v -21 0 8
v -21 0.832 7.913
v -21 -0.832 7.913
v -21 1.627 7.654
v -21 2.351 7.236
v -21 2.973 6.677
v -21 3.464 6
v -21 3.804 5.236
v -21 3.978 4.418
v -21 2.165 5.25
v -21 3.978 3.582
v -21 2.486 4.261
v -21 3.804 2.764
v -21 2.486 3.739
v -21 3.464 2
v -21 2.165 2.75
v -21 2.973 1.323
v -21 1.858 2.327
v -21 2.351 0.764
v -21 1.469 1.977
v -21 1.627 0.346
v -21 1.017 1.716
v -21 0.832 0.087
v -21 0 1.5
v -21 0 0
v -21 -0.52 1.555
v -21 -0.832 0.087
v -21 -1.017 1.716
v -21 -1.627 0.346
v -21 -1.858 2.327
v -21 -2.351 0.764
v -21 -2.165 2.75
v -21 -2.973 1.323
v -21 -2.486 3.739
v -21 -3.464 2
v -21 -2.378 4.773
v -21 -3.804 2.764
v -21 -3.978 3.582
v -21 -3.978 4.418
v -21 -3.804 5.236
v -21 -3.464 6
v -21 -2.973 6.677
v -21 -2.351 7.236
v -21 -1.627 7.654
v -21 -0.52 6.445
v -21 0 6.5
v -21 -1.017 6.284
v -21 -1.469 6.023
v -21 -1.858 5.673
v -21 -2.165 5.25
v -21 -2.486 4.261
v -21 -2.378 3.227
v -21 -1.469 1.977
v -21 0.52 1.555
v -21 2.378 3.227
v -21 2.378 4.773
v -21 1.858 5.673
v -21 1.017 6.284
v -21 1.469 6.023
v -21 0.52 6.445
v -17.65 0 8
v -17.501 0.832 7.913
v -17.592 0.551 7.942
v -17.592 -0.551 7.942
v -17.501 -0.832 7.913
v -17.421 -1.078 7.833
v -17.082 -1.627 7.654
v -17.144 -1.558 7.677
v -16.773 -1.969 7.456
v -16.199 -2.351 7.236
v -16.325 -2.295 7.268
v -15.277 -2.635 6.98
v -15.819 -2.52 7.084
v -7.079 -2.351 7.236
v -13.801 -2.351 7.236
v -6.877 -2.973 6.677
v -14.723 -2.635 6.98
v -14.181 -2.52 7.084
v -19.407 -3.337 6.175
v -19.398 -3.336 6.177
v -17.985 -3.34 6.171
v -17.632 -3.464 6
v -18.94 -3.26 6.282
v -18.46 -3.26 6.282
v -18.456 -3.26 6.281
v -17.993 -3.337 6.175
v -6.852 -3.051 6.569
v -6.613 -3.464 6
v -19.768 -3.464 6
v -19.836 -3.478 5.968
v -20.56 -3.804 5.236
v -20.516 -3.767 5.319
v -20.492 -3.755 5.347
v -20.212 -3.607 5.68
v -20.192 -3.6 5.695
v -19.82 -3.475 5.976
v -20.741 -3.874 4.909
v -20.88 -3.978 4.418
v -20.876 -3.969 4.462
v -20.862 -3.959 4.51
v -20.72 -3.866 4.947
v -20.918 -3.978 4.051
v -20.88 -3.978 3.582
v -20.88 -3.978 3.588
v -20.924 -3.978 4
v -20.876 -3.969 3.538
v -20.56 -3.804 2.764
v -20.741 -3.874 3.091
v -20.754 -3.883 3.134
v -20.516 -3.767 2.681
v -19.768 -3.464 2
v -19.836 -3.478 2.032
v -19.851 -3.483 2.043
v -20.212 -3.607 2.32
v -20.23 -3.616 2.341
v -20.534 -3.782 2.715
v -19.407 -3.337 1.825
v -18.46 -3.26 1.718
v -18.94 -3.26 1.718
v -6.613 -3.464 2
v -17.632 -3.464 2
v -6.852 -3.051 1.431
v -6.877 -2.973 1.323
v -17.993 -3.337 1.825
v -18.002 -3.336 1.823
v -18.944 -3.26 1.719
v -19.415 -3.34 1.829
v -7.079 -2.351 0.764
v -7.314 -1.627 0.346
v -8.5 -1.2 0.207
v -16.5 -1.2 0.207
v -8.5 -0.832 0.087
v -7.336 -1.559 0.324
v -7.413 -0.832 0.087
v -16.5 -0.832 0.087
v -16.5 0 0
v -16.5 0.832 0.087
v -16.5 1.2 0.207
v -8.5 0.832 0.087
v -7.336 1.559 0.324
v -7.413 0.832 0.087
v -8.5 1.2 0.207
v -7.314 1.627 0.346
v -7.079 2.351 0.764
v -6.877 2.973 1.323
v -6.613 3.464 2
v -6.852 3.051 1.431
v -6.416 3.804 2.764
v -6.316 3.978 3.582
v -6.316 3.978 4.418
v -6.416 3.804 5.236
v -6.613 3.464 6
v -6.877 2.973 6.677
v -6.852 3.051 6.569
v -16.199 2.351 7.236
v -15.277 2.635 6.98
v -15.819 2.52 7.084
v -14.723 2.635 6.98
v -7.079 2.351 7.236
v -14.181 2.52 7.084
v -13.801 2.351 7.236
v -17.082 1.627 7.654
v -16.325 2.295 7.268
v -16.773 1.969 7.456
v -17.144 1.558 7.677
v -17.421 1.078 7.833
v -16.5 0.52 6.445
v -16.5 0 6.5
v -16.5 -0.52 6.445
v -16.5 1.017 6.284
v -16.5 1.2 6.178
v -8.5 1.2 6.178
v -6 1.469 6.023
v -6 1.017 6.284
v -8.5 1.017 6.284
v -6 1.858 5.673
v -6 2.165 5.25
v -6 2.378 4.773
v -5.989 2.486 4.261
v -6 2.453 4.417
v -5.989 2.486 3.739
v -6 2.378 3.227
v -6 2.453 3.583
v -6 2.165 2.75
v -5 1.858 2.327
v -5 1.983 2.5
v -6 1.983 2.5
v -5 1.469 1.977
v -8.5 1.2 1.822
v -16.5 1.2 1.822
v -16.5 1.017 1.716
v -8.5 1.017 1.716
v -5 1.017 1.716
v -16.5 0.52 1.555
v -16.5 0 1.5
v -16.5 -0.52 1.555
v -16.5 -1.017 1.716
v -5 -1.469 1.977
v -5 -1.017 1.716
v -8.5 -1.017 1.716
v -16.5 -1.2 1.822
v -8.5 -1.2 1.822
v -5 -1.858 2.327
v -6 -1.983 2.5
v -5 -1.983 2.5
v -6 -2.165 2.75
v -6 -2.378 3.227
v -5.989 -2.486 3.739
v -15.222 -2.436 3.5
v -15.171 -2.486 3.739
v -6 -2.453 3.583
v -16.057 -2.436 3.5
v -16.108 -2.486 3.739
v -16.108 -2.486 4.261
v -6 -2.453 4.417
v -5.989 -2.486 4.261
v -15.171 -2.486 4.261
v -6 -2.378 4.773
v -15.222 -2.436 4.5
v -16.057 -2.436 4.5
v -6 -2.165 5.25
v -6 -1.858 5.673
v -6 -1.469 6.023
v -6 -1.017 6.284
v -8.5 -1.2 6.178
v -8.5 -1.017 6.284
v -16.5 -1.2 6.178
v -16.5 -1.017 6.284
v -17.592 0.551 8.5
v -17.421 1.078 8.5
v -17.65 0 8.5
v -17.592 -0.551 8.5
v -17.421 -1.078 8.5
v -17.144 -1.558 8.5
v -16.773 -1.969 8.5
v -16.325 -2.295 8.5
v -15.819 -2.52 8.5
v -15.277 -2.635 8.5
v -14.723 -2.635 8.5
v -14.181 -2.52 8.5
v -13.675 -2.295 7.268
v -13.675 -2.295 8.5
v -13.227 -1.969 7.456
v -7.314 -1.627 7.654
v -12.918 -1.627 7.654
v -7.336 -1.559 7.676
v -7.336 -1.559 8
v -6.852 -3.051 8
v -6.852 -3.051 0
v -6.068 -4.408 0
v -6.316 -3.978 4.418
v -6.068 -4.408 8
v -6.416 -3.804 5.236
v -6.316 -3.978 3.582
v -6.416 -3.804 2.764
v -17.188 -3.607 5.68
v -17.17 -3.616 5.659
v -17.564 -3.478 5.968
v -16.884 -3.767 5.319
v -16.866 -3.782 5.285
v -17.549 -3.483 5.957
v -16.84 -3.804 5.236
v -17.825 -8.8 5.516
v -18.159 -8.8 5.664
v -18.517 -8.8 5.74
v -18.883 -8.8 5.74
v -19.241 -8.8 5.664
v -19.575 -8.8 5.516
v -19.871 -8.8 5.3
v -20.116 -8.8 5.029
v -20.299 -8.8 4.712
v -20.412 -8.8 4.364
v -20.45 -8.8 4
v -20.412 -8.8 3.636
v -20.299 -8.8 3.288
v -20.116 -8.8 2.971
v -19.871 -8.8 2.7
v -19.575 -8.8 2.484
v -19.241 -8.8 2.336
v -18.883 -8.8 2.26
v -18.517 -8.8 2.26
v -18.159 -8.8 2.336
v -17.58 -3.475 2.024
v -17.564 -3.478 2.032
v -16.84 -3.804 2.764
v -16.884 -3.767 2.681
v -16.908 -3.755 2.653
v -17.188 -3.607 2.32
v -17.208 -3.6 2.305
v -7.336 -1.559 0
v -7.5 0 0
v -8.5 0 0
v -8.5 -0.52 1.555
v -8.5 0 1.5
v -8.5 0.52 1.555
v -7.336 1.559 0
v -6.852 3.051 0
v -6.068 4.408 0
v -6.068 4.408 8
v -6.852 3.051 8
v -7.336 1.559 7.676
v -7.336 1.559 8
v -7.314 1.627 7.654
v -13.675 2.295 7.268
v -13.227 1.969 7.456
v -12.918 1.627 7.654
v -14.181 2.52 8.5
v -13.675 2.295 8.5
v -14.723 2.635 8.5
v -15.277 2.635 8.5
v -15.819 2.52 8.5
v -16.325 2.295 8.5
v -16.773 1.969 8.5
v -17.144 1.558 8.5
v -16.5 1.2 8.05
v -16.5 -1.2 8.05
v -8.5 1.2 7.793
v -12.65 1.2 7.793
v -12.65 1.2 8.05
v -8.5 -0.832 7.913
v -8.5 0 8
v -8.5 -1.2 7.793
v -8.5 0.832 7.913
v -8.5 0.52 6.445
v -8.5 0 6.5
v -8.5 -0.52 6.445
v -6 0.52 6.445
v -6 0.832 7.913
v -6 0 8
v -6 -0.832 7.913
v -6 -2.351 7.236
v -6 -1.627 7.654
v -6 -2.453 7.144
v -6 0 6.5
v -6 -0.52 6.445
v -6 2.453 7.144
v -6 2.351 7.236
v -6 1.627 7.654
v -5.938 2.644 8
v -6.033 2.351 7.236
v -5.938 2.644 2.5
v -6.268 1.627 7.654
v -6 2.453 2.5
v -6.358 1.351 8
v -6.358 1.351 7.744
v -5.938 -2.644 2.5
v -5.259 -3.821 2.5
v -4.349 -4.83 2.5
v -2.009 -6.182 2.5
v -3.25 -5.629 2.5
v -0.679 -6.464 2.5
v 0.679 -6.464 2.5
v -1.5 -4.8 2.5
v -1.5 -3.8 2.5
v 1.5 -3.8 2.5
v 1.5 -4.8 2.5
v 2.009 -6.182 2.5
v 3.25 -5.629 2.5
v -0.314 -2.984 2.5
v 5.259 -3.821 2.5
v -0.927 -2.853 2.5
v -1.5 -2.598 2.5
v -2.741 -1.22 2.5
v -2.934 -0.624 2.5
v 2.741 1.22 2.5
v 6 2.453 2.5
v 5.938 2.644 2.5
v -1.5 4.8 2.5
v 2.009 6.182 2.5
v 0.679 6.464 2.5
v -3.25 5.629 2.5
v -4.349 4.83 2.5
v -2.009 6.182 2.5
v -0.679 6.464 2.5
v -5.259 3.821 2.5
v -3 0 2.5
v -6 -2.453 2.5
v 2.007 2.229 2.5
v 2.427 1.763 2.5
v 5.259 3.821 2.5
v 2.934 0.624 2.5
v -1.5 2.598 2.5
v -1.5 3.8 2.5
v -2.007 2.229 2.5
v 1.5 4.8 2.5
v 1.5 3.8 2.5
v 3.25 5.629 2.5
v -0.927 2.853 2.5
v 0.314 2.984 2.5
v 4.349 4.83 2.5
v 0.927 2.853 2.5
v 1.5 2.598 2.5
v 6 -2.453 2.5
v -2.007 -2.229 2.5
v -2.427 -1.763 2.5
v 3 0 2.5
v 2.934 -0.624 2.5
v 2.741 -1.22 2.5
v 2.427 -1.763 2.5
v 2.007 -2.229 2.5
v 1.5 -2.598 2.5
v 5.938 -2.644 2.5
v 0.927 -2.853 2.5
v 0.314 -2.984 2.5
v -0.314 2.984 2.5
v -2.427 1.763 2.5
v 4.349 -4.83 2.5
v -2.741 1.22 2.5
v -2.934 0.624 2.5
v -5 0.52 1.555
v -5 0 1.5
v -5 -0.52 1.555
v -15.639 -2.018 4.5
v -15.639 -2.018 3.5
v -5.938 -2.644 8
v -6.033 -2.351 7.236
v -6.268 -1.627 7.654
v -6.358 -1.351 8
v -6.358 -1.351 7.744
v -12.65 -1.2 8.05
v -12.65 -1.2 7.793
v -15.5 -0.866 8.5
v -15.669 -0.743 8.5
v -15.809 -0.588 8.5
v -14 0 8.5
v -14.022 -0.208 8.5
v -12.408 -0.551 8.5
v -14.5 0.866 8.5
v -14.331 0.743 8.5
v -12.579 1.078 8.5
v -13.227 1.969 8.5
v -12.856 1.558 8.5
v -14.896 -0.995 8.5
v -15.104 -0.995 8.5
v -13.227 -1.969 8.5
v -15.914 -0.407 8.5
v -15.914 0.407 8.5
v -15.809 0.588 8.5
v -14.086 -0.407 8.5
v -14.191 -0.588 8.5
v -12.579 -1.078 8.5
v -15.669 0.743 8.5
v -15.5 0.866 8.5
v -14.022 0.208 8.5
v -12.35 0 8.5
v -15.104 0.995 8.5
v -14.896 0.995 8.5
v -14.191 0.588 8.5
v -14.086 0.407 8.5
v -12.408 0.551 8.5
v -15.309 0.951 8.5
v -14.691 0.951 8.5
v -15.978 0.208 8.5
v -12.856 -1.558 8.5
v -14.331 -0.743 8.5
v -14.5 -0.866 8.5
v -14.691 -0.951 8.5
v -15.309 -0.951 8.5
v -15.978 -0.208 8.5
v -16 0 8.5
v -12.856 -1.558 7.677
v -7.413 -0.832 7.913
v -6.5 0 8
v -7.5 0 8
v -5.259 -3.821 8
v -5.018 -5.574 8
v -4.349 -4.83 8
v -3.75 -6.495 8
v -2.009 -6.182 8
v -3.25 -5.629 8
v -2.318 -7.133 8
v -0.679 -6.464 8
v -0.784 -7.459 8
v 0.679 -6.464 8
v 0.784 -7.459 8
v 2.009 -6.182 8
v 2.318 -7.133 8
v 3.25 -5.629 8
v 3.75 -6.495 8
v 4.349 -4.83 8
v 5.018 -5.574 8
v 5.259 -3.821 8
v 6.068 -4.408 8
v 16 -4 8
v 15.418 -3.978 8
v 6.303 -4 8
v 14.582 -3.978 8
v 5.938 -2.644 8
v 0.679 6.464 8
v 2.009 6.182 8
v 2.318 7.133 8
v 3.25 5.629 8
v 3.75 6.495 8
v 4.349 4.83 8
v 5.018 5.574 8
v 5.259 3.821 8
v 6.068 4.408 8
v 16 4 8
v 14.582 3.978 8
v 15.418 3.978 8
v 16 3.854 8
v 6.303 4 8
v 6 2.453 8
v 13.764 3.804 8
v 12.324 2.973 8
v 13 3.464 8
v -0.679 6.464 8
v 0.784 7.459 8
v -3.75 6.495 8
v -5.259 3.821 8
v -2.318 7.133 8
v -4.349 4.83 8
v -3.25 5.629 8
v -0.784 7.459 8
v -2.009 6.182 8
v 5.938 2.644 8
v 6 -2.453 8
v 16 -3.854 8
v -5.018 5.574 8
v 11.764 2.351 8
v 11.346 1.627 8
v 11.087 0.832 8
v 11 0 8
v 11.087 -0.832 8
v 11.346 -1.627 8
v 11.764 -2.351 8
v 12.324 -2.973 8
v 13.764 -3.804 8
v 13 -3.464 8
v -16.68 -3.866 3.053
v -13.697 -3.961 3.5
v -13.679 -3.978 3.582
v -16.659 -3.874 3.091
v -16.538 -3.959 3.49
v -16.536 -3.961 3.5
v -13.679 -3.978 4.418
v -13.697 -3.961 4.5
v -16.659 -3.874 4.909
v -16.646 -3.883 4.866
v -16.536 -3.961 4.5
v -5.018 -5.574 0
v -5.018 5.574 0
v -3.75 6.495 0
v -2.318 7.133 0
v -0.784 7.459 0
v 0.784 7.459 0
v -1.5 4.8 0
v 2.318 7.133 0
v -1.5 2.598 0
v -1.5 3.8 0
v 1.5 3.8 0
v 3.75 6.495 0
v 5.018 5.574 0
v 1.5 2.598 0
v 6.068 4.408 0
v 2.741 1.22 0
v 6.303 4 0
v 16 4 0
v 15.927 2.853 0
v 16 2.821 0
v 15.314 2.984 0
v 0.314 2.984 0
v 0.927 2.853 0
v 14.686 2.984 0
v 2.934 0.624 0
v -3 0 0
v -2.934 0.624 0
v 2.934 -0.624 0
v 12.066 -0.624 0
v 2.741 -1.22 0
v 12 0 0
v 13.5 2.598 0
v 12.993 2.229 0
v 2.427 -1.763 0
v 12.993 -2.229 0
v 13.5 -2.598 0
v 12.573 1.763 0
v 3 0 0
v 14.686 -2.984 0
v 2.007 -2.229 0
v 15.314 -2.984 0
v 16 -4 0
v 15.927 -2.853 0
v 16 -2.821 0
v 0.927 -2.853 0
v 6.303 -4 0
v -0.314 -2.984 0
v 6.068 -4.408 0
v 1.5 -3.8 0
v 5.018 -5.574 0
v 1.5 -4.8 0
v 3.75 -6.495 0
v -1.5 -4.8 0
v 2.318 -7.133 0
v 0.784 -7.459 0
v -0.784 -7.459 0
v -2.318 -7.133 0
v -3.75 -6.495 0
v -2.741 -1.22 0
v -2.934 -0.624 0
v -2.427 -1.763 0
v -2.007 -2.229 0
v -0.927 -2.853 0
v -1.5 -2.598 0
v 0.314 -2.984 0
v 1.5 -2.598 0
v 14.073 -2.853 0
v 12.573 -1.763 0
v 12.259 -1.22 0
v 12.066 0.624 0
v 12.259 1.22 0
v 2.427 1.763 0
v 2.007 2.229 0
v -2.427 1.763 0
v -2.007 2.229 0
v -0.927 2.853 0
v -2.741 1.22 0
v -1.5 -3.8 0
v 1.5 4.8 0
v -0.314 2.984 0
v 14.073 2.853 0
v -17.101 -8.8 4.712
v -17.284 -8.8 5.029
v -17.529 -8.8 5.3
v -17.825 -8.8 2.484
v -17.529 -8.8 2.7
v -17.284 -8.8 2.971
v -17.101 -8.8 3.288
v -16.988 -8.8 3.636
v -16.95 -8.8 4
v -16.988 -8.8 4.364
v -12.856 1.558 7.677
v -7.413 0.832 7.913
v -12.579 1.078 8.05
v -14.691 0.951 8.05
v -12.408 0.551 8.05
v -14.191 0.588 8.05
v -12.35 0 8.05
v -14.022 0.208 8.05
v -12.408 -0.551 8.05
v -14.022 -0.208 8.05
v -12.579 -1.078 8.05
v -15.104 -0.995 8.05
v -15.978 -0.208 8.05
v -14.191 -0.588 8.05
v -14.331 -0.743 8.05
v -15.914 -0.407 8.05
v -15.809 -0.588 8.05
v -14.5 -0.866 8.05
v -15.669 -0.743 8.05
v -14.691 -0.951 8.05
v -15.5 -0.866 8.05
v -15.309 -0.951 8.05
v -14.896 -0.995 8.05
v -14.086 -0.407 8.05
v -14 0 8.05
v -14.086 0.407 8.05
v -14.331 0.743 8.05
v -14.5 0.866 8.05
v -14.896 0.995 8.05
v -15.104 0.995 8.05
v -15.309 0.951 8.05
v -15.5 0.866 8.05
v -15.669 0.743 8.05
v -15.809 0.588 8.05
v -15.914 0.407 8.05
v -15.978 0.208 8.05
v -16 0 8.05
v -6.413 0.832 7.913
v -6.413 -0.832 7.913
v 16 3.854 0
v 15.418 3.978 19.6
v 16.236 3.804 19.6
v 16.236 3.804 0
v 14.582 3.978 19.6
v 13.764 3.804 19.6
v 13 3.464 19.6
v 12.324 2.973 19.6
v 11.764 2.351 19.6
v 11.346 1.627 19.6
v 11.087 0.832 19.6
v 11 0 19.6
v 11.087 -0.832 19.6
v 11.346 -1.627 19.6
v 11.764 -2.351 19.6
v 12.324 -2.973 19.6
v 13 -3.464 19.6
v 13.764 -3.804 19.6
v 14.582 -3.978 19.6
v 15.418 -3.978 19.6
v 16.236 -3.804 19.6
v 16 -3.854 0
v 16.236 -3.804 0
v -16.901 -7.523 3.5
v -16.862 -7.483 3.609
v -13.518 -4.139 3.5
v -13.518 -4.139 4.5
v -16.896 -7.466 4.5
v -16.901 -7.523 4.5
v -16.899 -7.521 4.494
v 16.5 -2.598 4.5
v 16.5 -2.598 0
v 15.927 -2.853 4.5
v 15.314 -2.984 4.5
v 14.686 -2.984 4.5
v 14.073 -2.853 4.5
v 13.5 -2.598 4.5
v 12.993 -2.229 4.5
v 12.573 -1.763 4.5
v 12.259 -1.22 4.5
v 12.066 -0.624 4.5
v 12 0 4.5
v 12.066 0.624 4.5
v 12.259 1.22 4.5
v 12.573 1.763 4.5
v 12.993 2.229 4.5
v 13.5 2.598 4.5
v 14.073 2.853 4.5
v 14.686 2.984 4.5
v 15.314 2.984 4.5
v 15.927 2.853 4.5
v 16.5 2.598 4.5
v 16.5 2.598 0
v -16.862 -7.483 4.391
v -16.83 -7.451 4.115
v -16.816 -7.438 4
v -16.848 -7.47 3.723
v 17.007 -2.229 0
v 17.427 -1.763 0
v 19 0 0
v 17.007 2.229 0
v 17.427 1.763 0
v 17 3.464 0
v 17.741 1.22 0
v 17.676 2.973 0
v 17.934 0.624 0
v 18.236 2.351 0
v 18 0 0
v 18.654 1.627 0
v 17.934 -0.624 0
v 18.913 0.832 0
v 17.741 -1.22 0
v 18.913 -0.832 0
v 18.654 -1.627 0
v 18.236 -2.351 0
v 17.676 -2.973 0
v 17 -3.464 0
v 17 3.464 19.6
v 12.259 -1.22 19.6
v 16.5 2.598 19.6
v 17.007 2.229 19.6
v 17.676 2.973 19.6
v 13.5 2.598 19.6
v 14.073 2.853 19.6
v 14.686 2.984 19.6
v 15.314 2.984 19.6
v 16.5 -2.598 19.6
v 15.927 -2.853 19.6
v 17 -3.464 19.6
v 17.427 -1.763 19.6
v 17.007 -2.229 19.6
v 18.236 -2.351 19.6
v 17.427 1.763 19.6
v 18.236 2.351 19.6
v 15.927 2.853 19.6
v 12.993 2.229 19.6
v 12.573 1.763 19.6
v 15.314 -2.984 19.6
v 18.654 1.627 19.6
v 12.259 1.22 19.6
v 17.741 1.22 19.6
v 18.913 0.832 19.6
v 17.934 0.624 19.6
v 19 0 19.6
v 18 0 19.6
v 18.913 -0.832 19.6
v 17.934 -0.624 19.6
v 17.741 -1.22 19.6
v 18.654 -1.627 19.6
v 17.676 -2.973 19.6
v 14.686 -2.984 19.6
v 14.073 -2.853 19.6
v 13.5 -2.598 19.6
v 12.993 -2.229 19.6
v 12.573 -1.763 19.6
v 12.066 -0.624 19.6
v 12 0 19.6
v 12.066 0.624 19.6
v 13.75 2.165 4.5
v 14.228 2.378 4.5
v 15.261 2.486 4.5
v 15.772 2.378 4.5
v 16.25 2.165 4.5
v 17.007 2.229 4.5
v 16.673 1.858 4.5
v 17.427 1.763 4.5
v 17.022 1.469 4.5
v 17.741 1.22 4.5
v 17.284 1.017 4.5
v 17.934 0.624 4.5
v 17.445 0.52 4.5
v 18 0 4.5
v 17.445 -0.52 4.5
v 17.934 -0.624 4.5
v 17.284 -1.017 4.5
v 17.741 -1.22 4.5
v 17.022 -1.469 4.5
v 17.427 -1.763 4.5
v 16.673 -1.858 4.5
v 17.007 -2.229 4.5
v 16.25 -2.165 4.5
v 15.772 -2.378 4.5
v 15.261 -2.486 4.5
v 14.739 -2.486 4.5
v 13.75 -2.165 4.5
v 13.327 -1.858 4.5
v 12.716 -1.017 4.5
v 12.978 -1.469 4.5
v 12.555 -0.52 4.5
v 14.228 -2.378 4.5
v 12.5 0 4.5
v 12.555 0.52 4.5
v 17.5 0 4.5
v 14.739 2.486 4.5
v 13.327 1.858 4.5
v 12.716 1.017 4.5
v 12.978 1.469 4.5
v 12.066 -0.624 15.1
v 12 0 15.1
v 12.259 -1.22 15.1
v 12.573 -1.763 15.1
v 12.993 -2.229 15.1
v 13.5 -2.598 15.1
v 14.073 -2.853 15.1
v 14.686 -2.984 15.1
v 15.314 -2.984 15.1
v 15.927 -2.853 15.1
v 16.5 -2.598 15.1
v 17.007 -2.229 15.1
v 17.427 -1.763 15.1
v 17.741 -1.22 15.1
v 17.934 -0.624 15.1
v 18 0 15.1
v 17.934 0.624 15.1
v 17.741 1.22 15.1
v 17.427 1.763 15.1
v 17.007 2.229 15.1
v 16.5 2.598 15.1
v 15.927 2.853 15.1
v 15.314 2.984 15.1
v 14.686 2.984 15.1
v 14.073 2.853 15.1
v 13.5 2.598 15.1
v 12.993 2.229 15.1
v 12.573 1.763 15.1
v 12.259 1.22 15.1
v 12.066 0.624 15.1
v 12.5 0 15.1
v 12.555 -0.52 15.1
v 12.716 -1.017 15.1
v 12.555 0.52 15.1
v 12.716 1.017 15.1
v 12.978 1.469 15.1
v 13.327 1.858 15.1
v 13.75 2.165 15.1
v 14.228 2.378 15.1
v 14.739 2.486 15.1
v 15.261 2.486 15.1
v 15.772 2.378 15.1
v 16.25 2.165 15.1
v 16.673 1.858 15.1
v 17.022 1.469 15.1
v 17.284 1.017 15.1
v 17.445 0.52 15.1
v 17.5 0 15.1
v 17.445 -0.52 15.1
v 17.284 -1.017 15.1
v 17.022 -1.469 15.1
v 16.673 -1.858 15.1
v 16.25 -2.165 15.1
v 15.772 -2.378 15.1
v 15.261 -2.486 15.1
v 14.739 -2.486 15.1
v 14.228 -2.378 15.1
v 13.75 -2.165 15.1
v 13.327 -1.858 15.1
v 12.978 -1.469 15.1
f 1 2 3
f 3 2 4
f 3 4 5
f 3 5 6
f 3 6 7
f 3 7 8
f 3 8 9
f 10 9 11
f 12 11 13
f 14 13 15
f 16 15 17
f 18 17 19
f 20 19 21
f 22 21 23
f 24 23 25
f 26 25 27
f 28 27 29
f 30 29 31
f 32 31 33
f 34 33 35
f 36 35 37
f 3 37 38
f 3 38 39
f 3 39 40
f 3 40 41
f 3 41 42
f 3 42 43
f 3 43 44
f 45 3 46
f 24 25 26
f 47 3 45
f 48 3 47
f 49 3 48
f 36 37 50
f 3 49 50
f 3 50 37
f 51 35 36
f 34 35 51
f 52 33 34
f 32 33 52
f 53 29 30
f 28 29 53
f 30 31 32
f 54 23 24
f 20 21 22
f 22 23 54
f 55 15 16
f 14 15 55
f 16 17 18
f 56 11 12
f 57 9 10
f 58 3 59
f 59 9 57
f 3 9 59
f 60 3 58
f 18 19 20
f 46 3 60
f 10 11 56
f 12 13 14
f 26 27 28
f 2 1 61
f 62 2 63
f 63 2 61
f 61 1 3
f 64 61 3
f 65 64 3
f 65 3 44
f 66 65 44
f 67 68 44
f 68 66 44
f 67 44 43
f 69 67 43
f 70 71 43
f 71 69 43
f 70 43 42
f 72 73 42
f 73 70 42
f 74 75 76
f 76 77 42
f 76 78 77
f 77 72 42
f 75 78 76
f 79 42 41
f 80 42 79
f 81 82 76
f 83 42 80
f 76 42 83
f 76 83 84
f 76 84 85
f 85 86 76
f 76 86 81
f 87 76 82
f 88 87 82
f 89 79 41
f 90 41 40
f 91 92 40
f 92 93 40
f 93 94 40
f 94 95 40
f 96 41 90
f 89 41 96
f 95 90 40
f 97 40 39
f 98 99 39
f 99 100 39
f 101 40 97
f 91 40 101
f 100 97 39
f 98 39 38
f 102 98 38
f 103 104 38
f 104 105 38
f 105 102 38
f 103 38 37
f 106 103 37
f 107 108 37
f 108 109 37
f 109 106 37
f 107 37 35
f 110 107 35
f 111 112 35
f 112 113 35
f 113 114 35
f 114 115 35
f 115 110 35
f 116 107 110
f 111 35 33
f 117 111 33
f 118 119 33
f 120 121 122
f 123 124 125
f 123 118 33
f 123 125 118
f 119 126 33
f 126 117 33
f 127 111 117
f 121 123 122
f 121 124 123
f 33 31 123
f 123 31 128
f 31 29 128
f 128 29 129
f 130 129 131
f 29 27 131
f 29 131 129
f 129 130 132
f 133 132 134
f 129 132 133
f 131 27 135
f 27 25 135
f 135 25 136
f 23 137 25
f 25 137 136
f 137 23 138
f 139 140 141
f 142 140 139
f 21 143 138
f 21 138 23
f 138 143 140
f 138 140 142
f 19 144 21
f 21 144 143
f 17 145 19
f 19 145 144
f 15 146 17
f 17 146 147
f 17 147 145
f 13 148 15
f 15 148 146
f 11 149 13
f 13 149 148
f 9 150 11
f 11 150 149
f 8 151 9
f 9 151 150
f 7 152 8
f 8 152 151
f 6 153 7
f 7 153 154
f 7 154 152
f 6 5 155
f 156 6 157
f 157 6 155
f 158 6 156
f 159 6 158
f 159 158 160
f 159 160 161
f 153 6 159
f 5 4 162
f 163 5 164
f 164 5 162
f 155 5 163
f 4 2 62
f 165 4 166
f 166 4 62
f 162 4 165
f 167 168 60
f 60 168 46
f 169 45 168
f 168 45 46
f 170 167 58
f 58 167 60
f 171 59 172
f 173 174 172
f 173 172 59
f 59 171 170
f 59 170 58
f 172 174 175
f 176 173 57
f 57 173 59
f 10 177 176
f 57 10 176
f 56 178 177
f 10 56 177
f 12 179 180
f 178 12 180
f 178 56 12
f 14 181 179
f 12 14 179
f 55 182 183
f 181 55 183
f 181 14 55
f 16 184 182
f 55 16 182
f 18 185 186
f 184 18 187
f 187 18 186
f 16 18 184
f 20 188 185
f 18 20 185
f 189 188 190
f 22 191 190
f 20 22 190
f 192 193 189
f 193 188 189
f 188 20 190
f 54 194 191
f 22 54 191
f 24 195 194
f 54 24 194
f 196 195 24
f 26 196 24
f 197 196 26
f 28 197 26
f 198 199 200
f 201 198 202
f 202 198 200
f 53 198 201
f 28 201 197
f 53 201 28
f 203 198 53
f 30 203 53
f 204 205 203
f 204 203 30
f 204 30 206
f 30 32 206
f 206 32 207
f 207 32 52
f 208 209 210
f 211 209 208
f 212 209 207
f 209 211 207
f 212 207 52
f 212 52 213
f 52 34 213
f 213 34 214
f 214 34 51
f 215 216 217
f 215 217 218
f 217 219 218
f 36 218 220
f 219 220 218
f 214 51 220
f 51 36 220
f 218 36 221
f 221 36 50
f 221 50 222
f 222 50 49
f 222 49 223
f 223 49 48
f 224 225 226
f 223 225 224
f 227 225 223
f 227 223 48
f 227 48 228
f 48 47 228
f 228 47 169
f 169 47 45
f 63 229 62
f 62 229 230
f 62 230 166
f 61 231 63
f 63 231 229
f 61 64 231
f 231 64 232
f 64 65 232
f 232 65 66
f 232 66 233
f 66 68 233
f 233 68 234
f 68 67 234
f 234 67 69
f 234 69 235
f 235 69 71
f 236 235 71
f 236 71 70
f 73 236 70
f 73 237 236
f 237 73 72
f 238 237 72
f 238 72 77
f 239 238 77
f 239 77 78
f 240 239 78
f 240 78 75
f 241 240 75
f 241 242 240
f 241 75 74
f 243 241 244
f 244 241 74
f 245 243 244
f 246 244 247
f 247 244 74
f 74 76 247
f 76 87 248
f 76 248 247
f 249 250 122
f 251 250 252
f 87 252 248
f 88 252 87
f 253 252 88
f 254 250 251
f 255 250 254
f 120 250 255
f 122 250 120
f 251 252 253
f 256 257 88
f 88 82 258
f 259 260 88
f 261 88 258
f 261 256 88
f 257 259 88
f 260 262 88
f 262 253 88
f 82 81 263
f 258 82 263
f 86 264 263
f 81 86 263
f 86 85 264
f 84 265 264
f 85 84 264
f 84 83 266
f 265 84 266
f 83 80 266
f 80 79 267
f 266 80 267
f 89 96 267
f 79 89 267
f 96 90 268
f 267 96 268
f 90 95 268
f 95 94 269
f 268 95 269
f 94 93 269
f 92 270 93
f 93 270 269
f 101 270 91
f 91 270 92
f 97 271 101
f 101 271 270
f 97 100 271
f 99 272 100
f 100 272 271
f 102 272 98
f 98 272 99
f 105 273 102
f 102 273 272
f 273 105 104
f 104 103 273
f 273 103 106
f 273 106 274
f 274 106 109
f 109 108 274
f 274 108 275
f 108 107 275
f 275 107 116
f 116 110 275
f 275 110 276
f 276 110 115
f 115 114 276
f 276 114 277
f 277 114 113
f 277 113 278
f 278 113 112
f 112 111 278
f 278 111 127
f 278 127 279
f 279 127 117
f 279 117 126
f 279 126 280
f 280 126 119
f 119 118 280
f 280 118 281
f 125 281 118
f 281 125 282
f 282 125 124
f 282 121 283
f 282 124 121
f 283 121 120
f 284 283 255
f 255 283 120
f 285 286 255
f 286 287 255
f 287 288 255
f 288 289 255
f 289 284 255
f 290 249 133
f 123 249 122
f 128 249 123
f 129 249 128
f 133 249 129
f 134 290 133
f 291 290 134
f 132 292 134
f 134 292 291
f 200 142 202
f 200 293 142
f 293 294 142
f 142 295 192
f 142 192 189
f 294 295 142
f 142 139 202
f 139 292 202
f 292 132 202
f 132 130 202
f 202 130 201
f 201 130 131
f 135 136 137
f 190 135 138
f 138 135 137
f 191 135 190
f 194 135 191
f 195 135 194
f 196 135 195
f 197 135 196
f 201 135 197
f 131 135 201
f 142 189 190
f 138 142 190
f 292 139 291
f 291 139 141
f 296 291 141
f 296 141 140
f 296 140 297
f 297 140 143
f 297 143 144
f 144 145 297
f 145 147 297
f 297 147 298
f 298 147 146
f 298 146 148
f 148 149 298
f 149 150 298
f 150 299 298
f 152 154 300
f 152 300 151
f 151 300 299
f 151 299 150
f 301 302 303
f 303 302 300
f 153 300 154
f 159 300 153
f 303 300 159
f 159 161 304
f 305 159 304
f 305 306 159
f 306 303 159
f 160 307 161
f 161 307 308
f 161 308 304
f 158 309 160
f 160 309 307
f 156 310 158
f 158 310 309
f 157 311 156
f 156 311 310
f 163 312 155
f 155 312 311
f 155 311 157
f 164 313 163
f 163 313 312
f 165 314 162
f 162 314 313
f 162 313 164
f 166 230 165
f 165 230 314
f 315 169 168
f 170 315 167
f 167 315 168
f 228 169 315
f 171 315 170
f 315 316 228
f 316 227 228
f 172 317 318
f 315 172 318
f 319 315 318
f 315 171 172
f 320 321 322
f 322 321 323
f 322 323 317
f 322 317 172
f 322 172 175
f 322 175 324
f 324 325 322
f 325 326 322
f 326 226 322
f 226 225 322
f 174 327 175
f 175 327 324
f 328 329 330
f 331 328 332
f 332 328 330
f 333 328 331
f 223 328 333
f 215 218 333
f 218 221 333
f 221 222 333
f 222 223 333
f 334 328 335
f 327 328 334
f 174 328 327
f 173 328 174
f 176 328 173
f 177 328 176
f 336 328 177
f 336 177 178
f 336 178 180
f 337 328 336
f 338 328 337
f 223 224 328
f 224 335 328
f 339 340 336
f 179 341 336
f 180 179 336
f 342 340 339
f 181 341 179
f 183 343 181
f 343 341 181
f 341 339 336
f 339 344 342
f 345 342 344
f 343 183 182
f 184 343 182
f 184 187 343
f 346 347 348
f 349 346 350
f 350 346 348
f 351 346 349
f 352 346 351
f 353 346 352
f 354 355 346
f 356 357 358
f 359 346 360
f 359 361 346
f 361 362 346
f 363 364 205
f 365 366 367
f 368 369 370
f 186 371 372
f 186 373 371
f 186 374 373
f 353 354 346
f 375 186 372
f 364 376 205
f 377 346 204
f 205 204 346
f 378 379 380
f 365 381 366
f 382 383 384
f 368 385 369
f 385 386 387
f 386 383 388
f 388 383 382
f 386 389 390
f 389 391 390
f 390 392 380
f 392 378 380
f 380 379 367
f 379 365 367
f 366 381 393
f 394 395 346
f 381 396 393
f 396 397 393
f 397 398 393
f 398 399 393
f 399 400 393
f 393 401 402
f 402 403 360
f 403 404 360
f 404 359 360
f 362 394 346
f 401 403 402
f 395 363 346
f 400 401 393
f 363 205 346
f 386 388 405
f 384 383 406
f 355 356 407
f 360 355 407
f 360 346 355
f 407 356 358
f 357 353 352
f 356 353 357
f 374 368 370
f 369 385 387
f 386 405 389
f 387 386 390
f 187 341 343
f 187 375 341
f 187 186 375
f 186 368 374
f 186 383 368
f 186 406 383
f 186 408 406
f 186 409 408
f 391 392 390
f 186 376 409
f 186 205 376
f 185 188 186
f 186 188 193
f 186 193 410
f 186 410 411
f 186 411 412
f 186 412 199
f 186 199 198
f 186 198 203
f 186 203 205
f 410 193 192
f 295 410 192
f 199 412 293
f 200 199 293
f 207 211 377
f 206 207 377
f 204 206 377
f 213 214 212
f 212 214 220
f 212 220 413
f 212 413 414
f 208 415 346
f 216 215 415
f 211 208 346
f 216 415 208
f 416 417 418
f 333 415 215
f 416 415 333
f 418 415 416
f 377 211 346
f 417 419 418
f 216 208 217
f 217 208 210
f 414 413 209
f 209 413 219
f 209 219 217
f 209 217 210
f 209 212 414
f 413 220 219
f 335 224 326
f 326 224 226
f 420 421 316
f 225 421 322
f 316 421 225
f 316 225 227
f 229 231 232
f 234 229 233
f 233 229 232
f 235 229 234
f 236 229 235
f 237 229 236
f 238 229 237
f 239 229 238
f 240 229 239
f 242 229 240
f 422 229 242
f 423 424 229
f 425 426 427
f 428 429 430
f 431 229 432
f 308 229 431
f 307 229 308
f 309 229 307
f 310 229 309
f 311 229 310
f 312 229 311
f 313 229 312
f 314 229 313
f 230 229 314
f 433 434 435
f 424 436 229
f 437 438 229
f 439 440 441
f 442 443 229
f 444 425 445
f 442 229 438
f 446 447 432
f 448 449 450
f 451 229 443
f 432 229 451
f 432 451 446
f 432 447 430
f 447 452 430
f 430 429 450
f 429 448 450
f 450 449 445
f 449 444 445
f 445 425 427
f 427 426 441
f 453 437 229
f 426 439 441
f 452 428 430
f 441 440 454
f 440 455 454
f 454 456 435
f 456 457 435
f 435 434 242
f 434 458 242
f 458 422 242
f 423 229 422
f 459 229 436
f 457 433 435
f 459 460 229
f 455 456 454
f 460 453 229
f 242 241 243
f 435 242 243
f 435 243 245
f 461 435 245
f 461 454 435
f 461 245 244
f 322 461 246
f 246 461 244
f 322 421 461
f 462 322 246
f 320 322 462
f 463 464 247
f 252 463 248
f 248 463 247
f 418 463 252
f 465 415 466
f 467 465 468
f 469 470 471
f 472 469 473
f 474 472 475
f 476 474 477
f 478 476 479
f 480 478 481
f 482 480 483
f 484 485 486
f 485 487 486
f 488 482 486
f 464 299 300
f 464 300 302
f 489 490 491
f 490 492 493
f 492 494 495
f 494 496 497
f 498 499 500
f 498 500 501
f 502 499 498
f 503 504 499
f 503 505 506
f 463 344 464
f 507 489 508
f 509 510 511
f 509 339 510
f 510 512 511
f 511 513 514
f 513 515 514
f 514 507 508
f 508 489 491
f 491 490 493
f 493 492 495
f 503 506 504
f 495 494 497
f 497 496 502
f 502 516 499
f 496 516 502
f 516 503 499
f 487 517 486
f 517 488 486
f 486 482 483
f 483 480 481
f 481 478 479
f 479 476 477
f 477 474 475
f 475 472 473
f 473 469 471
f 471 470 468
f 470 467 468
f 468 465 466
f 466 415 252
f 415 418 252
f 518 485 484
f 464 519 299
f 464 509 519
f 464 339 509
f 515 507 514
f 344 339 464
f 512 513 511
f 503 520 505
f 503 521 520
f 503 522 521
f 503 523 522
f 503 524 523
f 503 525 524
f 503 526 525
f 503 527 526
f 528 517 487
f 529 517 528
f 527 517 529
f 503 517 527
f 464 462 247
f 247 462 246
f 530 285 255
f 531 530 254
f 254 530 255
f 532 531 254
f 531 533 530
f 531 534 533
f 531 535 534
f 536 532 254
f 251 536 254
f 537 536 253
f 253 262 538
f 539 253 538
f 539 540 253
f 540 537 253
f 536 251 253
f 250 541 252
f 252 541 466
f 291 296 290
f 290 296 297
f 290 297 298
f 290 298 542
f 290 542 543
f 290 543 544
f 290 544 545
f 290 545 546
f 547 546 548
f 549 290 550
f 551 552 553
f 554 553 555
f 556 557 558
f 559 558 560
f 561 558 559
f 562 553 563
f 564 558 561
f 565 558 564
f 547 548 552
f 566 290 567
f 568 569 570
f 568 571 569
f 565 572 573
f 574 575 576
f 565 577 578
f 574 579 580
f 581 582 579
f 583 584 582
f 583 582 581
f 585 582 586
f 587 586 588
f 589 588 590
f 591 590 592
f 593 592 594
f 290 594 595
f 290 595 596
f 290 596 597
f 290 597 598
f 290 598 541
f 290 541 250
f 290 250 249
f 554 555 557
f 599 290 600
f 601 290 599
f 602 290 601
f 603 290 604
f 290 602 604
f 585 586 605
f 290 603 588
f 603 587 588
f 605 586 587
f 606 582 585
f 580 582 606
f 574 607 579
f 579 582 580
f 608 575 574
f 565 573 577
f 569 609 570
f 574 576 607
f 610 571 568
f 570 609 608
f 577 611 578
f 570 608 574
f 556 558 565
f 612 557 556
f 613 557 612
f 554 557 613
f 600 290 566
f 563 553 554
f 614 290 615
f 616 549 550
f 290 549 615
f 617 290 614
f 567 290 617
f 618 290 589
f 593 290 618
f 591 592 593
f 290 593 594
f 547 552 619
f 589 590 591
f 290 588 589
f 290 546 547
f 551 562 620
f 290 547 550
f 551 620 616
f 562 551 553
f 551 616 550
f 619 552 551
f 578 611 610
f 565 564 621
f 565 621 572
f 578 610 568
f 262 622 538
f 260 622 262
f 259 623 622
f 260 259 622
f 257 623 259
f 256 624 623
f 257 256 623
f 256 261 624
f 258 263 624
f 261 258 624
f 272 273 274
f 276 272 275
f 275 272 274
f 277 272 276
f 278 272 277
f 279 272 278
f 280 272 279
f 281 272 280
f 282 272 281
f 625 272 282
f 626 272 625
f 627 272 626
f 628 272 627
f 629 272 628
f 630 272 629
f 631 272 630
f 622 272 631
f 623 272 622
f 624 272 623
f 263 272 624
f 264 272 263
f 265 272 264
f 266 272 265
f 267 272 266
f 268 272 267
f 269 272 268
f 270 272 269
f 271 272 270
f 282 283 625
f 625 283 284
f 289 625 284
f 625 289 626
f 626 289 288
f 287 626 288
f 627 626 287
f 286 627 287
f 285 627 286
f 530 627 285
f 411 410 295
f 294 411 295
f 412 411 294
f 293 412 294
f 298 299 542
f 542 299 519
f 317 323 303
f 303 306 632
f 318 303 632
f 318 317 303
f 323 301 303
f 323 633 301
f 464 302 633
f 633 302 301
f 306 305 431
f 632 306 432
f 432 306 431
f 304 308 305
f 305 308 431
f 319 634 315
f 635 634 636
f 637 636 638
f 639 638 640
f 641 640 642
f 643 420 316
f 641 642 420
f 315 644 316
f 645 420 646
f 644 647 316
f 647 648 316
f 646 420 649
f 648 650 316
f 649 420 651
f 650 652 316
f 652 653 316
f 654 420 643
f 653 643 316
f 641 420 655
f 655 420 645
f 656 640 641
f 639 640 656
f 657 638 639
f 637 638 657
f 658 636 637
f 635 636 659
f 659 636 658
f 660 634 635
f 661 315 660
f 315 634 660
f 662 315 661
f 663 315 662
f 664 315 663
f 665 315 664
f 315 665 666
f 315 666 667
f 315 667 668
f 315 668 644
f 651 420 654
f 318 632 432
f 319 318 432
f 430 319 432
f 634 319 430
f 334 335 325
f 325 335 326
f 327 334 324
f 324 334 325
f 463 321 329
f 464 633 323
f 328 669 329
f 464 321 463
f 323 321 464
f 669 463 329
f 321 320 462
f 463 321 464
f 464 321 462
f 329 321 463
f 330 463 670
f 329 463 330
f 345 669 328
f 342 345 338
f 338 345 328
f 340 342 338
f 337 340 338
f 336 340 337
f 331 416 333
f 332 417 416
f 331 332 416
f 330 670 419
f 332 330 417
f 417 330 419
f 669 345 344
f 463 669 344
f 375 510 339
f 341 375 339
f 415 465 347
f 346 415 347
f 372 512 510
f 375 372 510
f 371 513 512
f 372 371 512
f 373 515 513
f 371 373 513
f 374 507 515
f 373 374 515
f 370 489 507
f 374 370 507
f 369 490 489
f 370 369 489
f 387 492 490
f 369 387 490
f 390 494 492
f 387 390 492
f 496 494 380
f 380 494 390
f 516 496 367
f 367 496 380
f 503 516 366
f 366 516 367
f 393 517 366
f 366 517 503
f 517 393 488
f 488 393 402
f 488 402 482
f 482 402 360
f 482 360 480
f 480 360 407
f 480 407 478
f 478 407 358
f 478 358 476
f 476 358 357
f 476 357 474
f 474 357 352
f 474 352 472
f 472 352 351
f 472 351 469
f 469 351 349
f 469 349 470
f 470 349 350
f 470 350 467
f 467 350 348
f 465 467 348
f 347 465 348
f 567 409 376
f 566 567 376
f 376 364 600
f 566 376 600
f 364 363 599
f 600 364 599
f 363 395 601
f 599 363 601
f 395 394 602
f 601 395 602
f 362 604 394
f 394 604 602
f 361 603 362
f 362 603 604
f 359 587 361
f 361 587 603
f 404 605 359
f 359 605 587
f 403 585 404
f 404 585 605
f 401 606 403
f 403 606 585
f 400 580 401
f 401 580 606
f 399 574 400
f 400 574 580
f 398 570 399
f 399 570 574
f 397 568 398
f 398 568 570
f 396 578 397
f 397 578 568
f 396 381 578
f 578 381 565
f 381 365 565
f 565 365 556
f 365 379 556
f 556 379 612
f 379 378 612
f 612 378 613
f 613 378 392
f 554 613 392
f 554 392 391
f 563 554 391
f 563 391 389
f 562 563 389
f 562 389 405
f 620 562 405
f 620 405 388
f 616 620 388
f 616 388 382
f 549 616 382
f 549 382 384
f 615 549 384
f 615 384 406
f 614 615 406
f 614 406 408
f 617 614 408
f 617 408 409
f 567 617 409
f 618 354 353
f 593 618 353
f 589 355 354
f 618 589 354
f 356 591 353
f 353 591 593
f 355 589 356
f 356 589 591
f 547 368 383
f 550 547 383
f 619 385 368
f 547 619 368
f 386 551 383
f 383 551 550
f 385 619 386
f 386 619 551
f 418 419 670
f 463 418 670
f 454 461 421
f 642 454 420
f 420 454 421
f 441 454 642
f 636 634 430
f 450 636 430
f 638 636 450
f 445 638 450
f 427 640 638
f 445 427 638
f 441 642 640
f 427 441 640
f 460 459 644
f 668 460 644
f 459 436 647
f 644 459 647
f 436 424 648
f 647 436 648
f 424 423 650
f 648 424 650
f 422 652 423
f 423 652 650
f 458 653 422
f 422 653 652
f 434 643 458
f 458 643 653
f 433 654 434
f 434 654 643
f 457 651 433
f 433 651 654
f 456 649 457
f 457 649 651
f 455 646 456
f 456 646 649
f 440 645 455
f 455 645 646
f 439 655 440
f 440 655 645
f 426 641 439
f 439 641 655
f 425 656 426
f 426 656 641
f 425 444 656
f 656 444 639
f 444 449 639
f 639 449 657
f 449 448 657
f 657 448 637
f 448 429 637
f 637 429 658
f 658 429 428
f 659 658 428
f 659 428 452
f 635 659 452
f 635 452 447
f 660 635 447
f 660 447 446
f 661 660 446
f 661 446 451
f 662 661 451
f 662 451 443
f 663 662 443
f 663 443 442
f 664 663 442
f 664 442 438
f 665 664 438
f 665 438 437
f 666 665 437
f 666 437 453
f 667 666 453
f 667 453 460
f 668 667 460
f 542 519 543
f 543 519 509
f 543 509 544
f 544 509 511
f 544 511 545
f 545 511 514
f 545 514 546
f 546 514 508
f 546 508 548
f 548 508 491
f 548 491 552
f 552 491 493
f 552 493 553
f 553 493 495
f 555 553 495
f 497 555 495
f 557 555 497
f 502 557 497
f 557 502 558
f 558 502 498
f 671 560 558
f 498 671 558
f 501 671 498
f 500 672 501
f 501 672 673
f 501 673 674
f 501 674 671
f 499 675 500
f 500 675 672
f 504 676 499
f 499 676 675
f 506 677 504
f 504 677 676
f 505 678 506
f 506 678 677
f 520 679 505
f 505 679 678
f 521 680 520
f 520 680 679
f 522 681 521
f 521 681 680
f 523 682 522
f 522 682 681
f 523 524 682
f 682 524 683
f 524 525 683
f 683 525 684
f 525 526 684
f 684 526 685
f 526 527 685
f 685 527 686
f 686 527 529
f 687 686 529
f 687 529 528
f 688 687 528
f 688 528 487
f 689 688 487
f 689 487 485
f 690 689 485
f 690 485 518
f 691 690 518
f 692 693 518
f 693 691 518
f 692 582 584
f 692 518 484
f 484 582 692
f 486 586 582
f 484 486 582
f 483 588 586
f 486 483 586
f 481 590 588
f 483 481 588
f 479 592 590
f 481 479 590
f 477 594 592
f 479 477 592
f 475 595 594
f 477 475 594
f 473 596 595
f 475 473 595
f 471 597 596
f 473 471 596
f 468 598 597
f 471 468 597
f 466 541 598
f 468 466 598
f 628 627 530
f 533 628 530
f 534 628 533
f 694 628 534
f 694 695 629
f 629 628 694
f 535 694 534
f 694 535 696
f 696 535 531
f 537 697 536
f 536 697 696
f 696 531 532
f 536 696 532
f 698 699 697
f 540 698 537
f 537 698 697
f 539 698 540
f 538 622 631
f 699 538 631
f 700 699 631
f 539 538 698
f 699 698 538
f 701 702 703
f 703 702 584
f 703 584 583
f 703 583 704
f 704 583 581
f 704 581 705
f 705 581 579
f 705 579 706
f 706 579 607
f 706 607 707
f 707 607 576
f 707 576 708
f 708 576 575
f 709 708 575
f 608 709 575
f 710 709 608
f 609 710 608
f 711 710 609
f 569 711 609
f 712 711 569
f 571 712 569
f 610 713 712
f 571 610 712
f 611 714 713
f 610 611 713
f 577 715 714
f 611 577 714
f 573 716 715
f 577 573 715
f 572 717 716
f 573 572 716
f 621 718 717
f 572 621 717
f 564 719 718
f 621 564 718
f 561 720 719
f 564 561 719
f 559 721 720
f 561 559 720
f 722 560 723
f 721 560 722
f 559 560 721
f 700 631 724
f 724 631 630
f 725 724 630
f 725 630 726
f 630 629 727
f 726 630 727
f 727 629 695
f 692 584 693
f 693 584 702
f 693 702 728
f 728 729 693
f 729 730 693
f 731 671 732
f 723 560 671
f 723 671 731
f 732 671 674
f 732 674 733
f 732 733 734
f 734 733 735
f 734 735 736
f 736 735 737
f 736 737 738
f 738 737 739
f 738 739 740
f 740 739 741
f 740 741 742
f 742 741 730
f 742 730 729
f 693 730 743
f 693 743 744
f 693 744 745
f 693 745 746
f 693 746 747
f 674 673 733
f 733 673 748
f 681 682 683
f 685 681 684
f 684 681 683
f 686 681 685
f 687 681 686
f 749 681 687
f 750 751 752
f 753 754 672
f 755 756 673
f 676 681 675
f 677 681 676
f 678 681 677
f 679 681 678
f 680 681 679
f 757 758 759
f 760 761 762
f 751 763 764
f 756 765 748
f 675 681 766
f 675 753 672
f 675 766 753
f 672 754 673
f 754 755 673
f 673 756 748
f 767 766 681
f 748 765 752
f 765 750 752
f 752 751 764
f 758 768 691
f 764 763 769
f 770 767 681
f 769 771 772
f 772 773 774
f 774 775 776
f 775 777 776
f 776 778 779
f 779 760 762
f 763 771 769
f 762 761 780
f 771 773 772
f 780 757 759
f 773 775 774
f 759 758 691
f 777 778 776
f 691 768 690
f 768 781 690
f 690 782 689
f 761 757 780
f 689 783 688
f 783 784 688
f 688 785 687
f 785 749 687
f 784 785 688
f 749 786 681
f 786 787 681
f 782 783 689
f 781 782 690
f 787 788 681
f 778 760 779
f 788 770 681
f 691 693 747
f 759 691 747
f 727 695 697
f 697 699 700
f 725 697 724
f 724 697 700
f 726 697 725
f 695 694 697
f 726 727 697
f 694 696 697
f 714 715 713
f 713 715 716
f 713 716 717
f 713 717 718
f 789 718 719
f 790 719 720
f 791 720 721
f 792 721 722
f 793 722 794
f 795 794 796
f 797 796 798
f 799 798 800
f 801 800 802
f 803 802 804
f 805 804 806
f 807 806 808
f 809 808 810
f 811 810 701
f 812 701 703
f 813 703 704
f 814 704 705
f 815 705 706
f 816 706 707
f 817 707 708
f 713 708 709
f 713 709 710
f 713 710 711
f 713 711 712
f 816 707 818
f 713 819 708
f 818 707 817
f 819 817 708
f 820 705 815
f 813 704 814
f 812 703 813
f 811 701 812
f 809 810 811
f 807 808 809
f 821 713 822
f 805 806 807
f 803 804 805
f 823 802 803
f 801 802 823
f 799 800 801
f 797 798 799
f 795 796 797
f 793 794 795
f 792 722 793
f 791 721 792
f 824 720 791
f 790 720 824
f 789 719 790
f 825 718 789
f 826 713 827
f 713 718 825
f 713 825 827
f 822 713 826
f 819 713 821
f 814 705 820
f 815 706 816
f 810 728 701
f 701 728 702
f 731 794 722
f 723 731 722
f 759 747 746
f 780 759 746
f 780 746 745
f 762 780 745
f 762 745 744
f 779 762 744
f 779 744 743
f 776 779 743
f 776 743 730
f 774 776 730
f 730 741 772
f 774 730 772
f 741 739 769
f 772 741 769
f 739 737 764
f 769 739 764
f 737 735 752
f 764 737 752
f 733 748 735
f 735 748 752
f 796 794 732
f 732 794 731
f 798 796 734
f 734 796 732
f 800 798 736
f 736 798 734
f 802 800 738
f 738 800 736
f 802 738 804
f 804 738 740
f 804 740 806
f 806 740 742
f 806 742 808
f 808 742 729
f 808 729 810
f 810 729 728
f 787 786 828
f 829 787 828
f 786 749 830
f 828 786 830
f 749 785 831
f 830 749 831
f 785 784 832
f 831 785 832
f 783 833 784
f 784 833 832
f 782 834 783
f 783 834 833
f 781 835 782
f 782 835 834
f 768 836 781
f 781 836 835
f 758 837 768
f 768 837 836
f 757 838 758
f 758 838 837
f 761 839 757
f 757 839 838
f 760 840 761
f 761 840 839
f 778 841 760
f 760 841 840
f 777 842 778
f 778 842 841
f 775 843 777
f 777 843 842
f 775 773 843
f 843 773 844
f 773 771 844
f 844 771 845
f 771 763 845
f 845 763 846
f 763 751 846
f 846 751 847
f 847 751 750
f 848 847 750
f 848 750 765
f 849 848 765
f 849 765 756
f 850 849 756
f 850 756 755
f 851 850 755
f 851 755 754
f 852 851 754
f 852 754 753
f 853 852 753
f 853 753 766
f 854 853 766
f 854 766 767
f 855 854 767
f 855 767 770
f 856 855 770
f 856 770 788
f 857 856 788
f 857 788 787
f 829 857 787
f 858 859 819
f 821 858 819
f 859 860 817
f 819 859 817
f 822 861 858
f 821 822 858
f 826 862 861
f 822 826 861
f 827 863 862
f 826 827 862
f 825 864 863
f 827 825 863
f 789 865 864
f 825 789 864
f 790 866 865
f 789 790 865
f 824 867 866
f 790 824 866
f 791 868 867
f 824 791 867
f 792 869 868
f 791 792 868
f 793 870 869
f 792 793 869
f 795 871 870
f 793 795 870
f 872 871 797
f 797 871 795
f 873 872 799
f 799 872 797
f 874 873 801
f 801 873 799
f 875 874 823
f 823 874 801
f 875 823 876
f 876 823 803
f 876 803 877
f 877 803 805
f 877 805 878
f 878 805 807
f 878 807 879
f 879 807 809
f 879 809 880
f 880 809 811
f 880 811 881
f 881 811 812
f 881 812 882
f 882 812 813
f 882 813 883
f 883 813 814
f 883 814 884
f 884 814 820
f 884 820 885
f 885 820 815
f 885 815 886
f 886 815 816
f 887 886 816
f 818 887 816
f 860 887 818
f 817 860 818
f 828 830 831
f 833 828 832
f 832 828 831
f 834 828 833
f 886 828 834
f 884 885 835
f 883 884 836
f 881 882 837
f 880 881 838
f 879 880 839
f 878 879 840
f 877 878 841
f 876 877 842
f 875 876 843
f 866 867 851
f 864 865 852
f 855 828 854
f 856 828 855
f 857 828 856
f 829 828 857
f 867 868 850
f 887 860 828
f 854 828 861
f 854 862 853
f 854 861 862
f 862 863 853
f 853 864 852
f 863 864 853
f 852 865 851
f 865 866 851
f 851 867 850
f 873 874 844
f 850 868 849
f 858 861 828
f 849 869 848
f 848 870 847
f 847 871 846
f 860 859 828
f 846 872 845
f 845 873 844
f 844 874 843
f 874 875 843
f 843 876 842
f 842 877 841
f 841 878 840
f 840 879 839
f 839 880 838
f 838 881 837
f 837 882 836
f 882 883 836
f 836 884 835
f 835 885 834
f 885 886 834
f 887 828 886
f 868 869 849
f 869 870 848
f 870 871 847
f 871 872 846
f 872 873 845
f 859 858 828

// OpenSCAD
/*
Jarkko Saltiola
2013

*/

//TODO
//
//Tarviiko tyhjentää long-tuben kiinnike
//long-tuben ylä- ja alaosien eri halkaisija   JOO

// Pieni tappi pois, läpireikä vaan tilalle

$fn = 30;

main_z = 8;

motor_radius = 13/2;     // <--- Adjust motor size
wall_thickness = 2;

module motor_hole(){
    bigger_hole_radius = 3;

    translate([0,0,main_z/2])  // Move to z=0
    difference(){

        difference(){
        cylinder(r=motor_radius + wall_thickness/2, h=main_z, center=true);
        translate([0,0,wall_thickness])
        cylinder(r=motor_radius, h=7, center=true);  // Moottorin kokoinen reikä
        }
        // Create holes to base
        cylinder(r=bigger_hole_radius, h=10, center=true); // Bigger hole
        // Smaller holes
        translate([0,4.3,0])
        cube(size=[3, 1, 10], center=true);
        translate([0,-4.3,0])
        cube(size=[3, 1, 10], center=true);
    }

}

long_tube_z = 19.6;
long_tube_r = 4;  // TODO check
long_tube_x = 15;

long_tube_hole_r = 2.5;    // Hole inner radius
long_tube_cylinder_r = 3;  // Cylinder holes radius
long_tube_cylinder_h = 4;  //                height


module long_tube() {
    translate([long_tube_x,0,long_tube_z / 2])
    cylinder(r=long_tube_r, h=long_tube_z, center=true);  // The tube
    // Connector to motor-hole
    // Tube
    translate([11,0,main_z/2])
    cube(size=[10, long_tube_r*2, main_z], center=true);
    // difference(){

    // }

}

module long_tube_hole() {
    // body...
    translate([long_tube_x,0,long_tube_z / 2]){
        cylinder(r=long_tube_hole_r, h=long_tube_z+1, center=true);

        //Upper cylinder hole
        translate([0,0,long_tube_z - long_tube_cylinder_h])
        cylinder(r=long_tube_cylinder_r, h=long_tube_z+1, center=true);
        //Lower cylinder hole
        translate([0,0,-long_tube_z + long_tube_cylinder_h])
        cylinder(r=long_tube_cylinder_r, h=long_tube_z+1, center=true);
    }
}


small_tube_r = long_tube_r;
small_tube_h = 15;
module small_tube() {
    translate([-small_tube_h+1.5,0,small_tube_r]) rotate([0, 90, 0]) {
        cylinder(r=small_tube_r, h=small_tube_h, center=true);  // attachment
    }

        translate([-15,0,main_z-0.5])
    difference(){
        cylinder(r=2.65, h=2, center=true);
        cylinder(r=1, h=3, center=true);
    }


}


module small_tube_holes() {
    translate([-small_tube_h+1.5,0,small_tube_r]) rotate([0, 90, 0])
    cylinder(r=5/2, h=small_tube_h+2, center=true); // Inner hole

    translate([-12.5,0,0])
    cube(size=[8, 2.4, 16.1], center=true); // Upper and lower holes
}


module side_tube(){
    translate([-18.7, -6, main_z / 2]){
        rotate([90, 0, 0])
        cylinder(r1=2.3, r2=1.75, h=5.6, center=true);

        //side support
        translate([2, 0.8, 0]) rotate([0, 0, 45])
        cube(size=[6, 3, 1], center=true);

    }
}


// ### MAIN ###

difference(){
    long_tube();
    long_tube_hole();
}
difference(){
    union(){
        motor_hole();
        small_tube();
    }
    small_tube_holes();
}

side_tube();
